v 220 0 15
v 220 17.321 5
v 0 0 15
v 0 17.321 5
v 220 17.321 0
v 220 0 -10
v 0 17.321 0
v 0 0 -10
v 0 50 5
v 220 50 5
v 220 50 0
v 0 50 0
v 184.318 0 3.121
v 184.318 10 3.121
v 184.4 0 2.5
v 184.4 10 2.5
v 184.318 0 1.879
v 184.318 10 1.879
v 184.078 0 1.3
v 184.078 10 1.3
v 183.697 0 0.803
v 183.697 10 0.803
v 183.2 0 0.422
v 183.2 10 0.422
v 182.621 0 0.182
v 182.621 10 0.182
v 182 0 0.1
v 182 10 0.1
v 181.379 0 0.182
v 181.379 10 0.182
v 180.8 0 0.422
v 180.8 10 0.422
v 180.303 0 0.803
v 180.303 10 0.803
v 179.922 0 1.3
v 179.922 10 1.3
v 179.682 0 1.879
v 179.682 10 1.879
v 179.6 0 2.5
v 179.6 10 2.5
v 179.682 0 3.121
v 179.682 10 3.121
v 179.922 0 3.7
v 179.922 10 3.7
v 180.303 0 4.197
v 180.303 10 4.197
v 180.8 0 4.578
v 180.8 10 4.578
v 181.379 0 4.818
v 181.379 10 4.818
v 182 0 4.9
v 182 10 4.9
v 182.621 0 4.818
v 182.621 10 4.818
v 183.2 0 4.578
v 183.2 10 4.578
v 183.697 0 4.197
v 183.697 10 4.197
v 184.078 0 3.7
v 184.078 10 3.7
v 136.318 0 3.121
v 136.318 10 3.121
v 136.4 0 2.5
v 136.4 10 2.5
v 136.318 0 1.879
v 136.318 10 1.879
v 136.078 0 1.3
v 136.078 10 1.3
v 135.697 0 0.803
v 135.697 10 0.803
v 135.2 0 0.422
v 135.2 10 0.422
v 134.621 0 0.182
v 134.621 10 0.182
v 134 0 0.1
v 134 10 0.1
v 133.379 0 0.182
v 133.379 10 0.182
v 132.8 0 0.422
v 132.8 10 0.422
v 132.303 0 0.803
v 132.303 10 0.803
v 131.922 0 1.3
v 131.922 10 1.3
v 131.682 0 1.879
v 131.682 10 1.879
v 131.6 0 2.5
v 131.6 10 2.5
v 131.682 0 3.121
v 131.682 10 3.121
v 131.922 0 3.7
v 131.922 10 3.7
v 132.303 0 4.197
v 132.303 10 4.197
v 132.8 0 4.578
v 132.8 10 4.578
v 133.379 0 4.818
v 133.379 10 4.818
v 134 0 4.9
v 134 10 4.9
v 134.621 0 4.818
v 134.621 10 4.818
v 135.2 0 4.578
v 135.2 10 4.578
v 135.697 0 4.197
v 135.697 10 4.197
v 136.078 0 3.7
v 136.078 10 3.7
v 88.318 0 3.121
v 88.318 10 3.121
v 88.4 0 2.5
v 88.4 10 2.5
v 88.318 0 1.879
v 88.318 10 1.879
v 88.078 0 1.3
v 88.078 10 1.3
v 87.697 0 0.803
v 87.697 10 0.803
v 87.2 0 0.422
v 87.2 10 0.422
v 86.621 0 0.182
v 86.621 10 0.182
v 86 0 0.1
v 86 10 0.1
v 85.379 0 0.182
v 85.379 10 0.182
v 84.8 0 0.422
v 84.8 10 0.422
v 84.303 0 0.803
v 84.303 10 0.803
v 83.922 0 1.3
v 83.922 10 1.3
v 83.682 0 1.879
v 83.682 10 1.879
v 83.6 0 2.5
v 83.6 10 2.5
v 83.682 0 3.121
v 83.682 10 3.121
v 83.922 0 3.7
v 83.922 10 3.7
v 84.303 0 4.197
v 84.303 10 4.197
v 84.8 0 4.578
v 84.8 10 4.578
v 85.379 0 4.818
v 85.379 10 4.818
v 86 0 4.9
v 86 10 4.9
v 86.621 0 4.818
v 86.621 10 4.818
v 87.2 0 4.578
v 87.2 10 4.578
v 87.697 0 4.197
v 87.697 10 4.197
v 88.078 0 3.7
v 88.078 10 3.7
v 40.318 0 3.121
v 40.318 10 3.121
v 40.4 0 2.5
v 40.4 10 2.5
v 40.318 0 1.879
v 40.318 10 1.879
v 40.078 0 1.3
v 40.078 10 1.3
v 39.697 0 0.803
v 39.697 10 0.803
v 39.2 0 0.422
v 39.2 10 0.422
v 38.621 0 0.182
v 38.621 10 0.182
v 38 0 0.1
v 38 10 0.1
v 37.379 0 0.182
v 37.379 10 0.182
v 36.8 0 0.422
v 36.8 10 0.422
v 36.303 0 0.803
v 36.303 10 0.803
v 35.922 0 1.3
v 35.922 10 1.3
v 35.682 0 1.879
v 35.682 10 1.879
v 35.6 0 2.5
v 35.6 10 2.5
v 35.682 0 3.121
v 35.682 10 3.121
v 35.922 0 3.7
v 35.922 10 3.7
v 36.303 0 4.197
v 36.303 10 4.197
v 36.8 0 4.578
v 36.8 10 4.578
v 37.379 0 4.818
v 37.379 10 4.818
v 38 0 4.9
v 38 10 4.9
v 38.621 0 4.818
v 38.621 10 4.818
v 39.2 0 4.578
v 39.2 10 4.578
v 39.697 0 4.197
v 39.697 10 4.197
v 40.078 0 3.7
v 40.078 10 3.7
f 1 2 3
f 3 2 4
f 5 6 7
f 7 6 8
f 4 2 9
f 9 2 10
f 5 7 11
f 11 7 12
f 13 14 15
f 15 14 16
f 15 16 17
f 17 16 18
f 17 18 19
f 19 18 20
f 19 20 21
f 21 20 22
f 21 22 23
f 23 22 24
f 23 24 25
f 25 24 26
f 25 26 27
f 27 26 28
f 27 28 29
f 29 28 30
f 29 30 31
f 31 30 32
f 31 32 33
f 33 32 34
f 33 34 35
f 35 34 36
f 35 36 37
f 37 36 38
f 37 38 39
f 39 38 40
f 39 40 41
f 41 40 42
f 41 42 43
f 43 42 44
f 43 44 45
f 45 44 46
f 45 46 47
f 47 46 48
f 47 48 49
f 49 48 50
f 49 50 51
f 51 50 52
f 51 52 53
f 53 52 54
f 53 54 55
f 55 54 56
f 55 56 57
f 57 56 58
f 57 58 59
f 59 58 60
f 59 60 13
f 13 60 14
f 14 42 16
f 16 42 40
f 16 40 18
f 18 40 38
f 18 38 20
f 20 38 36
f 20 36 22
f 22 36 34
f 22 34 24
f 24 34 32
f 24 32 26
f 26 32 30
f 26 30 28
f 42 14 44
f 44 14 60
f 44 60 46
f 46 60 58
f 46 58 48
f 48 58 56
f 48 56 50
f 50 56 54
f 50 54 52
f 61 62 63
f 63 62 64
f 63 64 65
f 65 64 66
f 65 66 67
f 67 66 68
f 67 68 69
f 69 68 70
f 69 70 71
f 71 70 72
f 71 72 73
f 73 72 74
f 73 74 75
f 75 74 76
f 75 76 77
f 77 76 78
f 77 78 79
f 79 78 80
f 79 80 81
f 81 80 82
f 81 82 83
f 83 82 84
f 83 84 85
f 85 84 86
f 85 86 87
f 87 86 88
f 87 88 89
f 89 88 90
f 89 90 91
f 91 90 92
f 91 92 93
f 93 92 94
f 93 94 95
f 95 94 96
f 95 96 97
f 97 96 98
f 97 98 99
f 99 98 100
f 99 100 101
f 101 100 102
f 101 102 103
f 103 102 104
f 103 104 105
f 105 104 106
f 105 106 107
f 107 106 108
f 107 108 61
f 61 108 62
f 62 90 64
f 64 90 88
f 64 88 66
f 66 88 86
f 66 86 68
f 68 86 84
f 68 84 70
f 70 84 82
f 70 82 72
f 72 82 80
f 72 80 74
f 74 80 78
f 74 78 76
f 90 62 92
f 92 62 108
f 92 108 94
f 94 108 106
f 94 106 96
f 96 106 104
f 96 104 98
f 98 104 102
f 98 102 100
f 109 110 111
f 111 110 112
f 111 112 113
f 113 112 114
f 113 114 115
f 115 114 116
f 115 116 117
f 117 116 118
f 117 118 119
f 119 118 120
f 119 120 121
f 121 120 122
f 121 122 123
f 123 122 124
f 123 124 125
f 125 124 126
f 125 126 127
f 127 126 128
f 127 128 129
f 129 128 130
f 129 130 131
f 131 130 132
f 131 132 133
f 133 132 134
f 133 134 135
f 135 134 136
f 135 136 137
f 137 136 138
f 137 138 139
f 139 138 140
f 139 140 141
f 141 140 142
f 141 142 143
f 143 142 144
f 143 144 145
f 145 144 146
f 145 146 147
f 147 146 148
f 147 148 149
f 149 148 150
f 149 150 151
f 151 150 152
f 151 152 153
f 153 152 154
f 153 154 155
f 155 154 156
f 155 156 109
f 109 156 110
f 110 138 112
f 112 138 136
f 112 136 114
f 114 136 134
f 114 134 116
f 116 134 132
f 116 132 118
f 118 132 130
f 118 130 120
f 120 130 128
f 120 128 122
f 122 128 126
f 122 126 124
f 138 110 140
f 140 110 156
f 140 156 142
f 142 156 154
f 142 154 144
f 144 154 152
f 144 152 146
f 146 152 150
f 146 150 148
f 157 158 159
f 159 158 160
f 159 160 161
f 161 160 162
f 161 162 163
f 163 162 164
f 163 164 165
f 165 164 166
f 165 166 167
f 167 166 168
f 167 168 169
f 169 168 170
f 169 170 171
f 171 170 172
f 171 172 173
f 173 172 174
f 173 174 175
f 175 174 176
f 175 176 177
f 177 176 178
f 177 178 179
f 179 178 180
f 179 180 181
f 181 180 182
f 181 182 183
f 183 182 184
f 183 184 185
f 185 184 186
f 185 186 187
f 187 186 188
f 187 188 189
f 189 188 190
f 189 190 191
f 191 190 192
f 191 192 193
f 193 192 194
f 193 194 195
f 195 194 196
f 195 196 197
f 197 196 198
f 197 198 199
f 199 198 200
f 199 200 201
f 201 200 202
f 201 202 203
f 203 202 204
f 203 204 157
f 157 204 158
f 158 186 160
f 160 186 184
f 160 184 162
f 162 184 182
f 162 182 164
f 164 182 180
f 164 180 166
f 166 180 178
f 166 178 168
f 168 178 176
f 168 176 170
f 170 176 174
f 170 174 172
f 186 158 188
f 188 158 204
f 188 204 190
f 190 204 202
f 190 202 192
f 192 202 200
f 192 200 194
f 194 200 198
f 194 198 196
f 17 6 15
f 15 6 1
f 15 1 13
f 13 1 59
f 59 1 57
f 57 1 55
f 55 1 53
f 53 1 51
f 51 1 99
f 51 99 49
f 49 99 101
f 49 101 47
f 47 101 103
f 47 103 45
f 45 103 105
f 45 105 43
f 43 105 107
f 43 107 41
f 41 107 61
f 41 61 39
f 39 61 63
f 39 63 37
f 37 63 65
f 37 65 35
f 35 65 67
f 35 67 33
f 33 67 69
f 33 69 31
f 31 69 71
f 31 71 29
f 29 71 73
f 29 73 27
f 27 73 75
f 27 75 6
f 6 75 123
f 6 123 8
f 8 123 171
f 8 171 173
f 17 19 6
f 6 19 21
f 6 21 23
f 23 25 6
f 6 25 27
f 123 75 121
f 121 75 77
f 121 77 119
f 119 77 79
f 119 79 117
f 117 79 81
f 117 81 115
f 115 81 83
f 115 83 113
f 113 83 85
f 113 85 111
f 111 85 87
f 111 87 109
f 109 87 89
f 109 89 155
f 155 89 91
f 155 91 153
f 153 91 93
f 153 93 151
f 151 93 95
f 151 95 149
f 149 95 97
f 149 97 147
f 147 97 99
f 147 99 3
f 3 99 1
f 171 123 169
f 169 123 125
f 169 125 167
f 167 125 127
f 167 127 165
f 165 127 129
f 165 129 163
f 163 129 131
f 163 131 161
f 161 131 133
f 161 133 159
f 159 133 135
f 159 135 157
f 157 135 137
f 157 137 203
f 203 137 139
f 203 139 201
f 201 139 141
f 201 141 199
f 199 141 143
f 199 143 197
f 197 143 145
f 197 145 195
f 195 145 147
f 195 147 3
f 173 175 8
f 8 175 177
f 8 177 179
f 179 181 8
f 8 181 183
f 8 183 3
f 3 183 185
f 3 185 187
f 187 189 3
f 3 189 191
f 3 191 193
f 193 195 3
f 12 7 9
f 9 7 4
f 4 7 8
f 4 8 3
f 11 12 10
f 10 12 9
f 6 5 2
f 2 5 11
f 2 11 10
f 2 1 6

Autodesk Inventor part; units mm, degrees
ref_plane "YZ Plane" through (0, 0, 0) normal (1, 0, 0) x (0, 1, 0)
ref_plane "XZ Plane" through (0, 0, 0) normal (0, 1, 0) x (-1, 0, 0)
ref_plane "XY Plane" through (0, 0, 0) normal (0, 0, 1) x (1, 0, 0)
sketch "Sketch1" plane through (0, 0, 0) normal (0, 0, 1) x (1, 0, 0)
  line L0 (0, 0) -> (220, 0)
  line L1 (220, 0) -> (220, 50)
  line L2 (220, 50) -> (0, 50)
  line L3 (0, 50) -> (0, 0)
  dimension "d0" = 220
  dimension "d1" = 50
extrude "Extrusion1" add sketch "Sketch1" along normal blind 5
sketch "Sketch2" plane through (0, 0, 0) normal (0, -1, 0) x (1, 0, 0)
  line L0 (0, 0) -> (220, 0) projected
  line L1 (0, 5) -> (220, 5) projected
  line L2 (0, 0) -> (0, 5) projected
  point P0 (38, 2.5)
  point P1 (86, 2.5)
  point P2 (134, 2.5)
  point P3 (182, 2.5)
  point P4 (0, 2.5)
  dimension "d4" = 5
  dimension "d5" = 220
  dimension "d6" = 2.5
  dimension "d7" = 38
  dimension "d8" = 48
  dimension "d9" = 48
  dimension "d10" = 48
hole "Hole1" at (38, 0, 2.5) at (86, 0, 2.5) at (134, 0, 2.5) at (182, 0, 2.5) direction (0, 1, 0) diameter 4.8 depth 10
sketch "Sketch3" plane through (0, 0, 0) normal (-1, 0, 0) x (0, 0, 1)
  line L0 (4.9, 0) -> (0.1, 0) projected
  line L1 (0.1, 10) -> (4.9, 10) projected
  line L2 (4.9, 0) -> (0.1, 0) projected
  line L3 (0.1, 10) -> (4.9, 10) projected
  line L4 (0, 0) -> (-10, 0)
  line L5 (-10, 0) -> (0, 17.3205)
  line L6 (0, 50) -> (0, 0) projected
  line L7 (5, 50) -> (5, 0) projected
  line L8 (5, 0) -> (15, 0)
  line L9 (15, 0) -> (5, 17.3205)
  point P0 (66.5733, 11.83)
  dimension "d18" = 10
  dimension "d19" = 60
extrude "Extrusion2" add sketch "Sketch3" against normal up to surface (220 mm away)
equation "\"d6\" = 0.5 * d4"
properties part number "Disk_Barrier_3DPrint"
